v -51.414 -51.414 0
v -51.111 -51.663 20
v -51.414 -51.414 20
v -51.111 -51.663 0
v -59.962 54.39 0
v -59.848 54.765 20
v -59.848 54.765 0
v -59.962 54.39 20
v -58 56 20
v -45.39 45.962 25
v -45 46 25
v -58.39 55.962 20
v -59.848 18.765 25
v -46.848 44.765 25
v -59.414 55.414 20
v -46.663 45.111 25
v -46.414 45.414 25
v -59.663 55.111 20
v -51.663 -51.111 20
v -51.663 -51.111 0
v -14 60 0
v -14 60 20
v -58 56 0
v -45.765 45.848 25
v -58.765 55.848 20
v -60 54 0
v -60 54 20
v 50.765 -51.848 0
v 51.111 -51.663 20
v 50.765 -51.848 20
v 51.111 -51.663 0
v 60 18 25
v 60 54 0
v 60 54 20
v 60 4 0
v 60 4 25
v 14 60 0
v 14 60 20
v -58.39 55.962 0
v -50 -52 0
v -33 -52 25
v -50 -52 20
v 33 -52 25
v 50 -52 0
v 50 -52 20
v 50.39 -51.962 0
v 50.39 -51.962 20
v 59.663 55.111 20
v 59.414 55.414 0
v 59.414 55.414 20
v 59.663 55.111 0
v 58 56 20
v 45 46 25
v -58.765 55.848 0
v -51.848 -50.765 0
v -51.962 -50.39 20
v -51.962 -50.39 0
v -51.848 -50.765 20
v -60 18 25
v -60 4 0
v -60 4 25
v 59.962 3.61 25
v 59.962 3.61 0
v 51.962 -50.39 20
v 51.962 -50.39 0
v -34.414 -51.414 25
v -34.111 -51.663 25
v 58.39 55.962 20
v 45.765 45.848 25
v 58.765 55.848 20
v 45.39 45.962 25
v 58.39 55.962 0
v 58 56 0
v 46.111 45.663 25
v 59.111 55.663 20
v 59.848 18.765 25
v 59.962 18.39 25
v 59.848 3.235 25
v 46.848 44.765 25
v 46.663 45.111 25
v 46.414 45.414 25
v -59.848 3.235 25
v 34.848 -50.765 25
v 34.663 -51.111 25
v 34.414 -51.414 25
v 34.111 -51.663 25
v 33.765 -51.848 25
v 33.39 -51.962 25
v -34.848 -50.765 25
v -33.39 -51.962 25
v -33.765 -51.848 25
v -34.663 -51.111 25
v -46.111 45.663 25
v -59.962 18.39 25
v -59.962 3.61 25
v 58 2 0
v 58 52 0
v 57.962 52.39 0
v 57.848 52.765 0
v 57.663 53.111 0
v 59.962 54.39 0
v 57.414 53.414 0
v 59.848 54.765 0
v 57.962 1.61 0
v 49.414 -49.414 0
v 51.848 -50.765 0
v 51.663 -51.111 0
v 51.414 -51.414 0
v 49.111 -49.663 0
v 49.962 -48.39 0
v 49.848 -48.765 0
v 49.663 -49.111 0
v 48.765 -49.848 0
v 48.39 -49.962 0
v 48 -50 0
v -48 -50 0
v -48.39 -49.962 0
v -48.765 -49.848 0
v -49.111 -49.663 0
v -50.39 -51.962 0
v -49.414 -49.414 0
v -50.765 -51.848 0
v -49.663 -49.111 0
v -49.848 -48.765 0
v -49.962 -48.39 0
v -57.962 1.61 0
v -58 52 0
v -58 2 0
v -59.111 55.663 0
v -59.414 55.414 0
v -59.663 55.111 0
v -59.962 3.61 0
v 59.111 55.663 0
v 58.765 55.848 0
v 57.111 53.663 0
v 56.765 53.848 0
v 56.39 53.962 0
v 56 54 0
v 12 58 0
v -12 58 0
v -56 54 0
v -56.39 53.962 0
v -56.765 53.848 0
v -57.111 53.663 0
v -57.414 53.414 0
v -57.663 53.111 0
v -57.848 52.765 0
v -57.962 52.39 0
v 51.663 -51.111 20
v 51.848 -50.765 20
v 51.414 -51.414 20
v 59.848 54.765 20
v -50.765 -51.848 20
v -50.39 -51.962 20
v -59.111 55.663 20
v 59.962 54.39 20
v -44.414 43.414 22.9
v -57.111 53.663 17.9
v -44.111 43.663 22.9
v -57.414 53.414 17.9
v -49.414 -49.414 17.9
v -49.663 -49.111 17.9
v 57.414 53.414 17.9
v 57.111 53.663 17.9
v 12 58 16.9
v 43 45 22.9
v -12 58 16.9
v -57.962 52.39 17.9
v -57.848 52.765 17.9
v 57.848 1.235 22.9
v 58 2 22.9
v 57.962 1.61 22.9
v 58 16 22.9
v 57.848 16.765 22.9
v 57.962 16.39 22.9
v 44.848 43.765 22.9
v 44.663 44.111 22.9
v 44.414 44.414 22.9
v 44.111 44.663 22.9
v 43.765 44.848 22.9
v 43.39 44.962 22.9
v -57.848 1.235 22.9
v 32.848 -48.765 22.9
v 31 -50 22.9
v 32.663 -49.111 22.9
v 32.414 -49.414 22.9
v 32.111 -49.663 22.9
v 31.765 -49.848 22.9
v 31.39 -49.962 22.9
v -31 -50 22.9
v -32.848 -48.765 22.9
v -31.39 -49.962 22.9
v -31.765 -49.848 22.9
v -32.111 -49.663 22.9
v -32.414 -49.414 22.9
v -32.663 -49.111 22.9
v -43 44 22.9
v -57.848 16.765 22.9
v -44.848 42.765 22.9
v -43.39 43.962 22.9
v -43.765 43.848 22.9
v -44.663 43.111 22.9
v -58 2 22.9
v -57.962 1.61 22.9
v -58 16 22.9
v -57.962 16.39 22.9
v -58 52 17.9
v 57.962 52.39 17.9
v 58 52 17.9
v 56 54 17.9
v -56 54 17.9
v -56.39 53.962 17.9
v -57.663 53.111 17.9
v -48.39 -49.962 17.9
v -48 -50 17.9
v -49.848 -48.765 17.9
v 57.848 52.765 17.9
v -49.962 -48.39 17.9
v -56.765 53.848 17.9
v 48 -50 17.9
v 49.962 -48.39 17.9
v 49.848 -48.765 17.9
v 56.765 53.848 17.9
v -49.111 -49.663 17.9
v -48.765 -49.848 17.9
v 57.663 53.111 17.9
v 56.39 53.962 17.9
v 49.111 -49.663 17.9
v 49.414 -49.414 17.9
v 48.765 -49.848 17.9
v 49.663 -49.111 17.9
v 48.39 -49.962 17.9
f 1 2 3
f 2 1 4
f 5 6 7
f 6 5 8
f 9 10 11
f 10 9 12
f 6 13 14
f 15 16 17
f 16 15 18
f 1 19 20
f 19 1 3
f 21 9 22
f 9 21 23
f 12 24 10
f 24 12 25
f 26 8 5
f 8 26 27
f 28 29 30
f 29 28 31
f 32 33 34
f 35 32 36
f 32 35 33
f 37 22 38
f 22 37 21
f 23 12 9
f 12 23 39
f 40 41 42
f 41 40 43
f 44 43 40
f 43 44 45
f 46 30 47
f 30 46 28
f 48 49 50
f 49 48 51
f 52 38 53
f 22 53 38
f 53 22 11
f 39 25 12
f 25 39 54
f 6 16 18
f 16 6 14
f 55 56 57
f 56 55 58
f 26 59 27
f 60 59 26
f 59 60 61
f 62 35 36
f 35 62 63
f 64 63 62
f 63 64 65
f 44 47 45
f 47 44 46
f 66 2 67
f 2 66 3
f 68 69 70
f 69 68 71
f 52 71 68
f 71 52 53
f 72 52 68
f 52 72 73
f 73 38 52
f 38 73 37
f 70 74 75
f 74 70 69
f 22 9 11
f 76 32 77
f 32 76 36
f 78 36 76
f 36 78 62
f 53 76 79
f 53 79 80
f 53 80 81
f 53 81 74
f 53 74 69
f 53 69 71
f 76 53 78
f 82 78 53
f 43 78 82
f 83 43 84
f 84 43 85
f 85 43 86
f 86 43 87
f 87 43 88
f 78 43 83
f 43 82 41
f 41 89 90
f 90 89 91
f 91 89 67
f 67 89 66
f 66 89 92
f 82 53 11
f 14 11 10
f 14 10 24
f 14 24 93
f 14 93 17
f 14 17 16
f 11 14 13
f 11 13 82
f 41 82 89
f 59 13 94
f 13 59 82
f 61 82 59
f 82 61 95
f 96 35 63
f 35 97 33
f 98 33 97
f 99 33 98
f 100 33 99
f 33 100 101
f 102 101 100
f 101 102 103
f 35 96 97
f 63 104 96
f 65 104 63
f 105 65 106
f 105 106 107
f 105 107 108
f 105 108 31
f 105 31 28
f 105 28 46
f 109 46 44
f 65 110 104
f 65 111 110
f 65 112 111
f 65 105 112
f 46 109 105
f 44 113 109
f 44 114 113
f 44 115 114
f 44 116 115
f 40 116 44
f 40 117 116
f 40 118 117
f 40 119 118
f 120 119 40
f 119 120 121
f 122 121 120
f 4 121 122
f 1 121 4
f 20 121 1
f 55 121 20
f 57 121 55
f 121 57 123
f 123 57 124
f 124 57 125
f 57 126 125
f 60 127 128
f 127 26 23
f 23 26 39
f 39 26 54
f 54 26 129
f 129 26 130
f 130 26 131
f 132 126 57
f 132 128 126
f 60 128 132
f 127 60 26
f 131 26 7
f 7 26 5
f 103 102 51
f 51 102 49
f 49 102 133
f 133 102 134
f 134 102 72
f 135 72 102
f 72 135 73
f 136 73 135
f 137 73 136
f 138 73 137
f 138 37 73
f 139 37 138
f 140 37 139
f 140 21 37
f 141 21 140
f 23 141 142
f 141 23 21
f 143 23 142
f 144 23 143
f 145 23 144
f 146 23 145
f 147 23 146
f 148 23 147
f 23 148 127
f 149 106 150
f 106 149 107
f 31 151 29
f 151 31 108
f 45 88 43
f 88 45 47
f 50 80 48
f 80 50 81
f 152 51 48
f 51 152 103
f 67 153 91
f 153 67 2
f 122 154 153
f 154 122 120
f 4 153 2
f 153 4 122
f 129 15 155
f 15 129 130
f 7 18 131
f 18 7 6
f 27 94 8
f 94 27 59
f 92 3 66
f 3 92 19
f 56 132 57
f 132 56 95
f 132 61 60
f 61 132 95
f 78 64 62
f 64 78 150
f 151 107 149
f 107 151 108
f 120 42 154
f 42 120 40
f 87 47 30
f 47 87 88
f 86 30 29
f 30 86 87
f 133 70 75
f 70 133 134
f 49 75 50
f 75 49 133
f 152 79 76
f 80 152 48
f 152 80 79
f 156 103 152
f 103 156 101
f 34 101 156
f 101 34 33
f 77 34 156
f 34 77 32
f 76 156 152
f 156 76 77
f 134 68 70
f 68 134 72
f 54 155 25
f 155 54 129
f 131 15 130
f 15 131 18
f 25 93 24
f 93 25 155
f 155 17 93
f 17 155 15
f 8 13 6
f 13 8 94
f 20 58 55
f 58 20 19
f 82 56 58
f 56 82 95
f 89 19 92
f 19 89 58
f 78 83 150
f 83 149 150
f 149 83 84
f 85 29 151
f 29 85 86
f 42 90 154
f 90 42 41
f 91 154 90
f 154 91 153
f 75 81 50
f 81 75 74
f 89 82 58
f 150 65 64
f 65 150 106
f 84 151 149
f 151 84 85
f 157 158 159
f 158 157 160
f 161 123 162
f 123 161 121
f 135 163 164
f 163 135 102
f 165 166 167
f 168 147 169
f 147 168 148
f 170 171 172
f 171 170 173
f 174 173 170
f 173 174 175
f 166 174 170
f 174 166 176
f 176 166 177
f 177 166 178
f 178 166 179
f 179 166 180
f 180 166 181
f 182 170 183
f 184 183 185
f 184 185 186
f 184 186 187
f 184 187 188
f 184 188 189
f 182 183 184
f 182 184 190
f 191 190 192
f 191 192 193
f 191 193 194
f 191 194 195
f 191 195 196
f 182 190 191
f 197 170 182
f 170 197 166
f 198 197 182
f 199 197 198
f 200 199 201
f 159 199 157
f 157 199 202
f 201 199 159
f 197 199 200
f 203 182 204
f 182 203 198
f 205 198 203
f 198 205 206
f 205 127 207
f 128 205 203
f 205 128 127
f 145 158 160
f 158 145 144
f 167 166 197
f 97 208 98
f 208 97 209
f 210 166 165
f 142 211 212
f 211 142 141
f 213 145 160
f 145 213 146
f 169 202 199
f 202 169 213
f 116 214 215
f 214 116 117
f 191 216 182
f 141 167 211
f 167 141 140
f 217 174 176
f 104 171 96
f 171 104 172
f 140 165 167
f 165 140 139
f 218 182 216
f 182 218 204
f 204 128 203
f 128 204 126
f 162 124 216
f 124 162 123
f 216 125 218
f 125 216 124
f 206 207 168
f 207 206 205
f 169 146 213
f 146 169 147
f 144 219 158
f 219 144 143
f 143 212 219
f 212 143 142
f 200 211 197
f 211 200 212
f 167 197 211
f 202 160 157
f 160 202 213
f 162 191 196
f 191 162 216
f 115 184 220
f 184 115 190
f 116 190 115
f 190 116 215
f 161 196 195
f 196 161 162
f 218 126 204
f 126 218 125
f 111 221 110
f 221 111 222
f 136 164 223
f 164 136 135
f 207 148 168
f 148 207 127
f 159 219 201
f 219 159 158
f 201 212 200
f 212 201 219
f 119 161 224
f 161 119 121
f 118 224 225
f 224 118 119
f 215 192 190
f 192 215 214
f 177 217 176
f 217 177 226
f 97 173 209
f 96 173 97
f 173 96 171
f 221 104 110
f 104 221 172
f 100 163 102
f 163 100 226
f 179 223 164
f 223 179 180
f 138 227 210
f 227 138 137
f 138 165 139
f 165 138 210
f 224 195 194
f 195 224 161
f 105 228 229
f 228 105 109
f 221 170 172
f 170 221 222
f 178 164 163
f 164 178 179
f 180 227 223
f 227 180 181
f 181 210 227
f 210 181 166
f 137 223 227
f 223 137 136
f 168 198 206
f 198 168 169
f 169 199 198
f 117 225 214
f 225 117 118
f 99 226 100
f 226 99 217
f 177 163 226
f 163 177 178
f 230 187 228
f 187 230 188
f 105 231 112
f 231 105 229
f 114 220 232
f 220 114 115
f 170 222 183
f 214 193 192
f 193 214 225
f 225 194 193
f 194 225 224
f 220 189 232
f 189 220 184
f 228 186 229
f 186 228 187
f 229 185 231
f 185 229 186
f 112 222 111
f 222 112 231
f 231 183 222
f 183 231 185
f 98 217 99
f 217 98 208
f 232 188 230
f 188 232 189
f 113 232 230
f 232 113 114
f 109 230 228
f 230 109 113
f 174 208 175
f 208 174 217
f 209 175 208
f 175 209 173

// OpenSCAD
rad=2;

chest();

module chest(){
    
    union(){
    
        difference(){
            
            union(){

                hull(){
                    
                    translate([-28/2, 58, 0])
                    cylinder(r=rad, h=20, $fn=32);
                    
                    translate([28/2, 58, 0])
                    cylinder(r=rad, h=20, $fn=32);
                    
                    translate([-116/2, 54, 0])
                    cylinder(r=rad, h=20, $fn=32);
                    
                    translate([116/2, 54, 0])
                    cylinder(r=rad, h=20, $fn=32);
                    
                    translate([-116/2, 4, 0])
                    cylinder(r=rad, h=25, $fn=32);
                    
                    translate([116/2, 4, 0])
                    cylinder(r=rad, h=25, $fn=32);

                    translate([-100/2, -50, 0])
                    cylinder(r=rad, h=20, $fn=32);
                    
                    translate([100/2, -50, 0])
                    cylinder(r=rad, h=20, $fn=32);
                    
                    
                    
                    translate([-66/2, -50, 0])
                    cylinder(r=rad, h=25, $fn=32);
                    
                    translate([66/2, -50, 0])
                    cylinder(r=rad, h=25, $fn=32);
                    
                    translate([-116/2, 18, 0])
                    cylinder(r=rad, h=25, $fn=32);
                    
                    translate([116/2, 18, 0])
                    cylinder(r=rad, h=25, $fn=32);
                    
                    translate([-90/2, 44, 0])
                    cylinder(r=rad, h=25, $fn=32);
                    
                    translate([90/2, 44, 0])
                    cylinder(r=rad, h=25, $fn=32);
                    
                    
                }
                
            }
            
            translate([0, 0, -0.1])
            hull(){
                
                translate([-24/2, 56, -1])
                cylinder(r=rad, h=18, $fn=32);
                
                translate([24/2, 56, -1])
                cylinder(r=rad, h=18, $fn=32);
                
                translate([-112/2, 52, 0])
                cylinder(r=rad, h=18, $fn=32);
                
                translate([112/2, 52, 0])
                cylinder(r=rad, h=18, $fn=32);
                
                translate([-112/2, 2, 0])
                cylinder(r=rad, h=23, $fn=32);
                
                translate([112/2, 2, 0])
                cylinder(r=rad, h=23, $fn=32);

                translate([-96/2, -48, 0])
                cylinder(r=rad, h=18, $fn=32);
                
                translate([96/2, -48, 0])
                cylinder(r=rad, h=18, $fn=32);
                
                
                
                translate([-62/2, -48, 0])
                cylinder(r=rad, h=23, $fn=32);
                
                translate([62/2, -48, 0])
                cylinder(r=rad, h=23, $fn=32);
                
                translate([-112/2, 16, 0])
                cylinder(r=rad, h=23, $fn=32);
                
                translate([112/2, 16, 0])
                cylinder(r=rad, h=23, $fn=32);
                
                translate([-86/2, 42, 0])
                cylinder(r=rad, h=23, $fn=32);
                
                translate([86/2, 43, 0])
                cylinder(r=rad, h=23, $fn=32);
                
            }
                
                

        }
    }
}
